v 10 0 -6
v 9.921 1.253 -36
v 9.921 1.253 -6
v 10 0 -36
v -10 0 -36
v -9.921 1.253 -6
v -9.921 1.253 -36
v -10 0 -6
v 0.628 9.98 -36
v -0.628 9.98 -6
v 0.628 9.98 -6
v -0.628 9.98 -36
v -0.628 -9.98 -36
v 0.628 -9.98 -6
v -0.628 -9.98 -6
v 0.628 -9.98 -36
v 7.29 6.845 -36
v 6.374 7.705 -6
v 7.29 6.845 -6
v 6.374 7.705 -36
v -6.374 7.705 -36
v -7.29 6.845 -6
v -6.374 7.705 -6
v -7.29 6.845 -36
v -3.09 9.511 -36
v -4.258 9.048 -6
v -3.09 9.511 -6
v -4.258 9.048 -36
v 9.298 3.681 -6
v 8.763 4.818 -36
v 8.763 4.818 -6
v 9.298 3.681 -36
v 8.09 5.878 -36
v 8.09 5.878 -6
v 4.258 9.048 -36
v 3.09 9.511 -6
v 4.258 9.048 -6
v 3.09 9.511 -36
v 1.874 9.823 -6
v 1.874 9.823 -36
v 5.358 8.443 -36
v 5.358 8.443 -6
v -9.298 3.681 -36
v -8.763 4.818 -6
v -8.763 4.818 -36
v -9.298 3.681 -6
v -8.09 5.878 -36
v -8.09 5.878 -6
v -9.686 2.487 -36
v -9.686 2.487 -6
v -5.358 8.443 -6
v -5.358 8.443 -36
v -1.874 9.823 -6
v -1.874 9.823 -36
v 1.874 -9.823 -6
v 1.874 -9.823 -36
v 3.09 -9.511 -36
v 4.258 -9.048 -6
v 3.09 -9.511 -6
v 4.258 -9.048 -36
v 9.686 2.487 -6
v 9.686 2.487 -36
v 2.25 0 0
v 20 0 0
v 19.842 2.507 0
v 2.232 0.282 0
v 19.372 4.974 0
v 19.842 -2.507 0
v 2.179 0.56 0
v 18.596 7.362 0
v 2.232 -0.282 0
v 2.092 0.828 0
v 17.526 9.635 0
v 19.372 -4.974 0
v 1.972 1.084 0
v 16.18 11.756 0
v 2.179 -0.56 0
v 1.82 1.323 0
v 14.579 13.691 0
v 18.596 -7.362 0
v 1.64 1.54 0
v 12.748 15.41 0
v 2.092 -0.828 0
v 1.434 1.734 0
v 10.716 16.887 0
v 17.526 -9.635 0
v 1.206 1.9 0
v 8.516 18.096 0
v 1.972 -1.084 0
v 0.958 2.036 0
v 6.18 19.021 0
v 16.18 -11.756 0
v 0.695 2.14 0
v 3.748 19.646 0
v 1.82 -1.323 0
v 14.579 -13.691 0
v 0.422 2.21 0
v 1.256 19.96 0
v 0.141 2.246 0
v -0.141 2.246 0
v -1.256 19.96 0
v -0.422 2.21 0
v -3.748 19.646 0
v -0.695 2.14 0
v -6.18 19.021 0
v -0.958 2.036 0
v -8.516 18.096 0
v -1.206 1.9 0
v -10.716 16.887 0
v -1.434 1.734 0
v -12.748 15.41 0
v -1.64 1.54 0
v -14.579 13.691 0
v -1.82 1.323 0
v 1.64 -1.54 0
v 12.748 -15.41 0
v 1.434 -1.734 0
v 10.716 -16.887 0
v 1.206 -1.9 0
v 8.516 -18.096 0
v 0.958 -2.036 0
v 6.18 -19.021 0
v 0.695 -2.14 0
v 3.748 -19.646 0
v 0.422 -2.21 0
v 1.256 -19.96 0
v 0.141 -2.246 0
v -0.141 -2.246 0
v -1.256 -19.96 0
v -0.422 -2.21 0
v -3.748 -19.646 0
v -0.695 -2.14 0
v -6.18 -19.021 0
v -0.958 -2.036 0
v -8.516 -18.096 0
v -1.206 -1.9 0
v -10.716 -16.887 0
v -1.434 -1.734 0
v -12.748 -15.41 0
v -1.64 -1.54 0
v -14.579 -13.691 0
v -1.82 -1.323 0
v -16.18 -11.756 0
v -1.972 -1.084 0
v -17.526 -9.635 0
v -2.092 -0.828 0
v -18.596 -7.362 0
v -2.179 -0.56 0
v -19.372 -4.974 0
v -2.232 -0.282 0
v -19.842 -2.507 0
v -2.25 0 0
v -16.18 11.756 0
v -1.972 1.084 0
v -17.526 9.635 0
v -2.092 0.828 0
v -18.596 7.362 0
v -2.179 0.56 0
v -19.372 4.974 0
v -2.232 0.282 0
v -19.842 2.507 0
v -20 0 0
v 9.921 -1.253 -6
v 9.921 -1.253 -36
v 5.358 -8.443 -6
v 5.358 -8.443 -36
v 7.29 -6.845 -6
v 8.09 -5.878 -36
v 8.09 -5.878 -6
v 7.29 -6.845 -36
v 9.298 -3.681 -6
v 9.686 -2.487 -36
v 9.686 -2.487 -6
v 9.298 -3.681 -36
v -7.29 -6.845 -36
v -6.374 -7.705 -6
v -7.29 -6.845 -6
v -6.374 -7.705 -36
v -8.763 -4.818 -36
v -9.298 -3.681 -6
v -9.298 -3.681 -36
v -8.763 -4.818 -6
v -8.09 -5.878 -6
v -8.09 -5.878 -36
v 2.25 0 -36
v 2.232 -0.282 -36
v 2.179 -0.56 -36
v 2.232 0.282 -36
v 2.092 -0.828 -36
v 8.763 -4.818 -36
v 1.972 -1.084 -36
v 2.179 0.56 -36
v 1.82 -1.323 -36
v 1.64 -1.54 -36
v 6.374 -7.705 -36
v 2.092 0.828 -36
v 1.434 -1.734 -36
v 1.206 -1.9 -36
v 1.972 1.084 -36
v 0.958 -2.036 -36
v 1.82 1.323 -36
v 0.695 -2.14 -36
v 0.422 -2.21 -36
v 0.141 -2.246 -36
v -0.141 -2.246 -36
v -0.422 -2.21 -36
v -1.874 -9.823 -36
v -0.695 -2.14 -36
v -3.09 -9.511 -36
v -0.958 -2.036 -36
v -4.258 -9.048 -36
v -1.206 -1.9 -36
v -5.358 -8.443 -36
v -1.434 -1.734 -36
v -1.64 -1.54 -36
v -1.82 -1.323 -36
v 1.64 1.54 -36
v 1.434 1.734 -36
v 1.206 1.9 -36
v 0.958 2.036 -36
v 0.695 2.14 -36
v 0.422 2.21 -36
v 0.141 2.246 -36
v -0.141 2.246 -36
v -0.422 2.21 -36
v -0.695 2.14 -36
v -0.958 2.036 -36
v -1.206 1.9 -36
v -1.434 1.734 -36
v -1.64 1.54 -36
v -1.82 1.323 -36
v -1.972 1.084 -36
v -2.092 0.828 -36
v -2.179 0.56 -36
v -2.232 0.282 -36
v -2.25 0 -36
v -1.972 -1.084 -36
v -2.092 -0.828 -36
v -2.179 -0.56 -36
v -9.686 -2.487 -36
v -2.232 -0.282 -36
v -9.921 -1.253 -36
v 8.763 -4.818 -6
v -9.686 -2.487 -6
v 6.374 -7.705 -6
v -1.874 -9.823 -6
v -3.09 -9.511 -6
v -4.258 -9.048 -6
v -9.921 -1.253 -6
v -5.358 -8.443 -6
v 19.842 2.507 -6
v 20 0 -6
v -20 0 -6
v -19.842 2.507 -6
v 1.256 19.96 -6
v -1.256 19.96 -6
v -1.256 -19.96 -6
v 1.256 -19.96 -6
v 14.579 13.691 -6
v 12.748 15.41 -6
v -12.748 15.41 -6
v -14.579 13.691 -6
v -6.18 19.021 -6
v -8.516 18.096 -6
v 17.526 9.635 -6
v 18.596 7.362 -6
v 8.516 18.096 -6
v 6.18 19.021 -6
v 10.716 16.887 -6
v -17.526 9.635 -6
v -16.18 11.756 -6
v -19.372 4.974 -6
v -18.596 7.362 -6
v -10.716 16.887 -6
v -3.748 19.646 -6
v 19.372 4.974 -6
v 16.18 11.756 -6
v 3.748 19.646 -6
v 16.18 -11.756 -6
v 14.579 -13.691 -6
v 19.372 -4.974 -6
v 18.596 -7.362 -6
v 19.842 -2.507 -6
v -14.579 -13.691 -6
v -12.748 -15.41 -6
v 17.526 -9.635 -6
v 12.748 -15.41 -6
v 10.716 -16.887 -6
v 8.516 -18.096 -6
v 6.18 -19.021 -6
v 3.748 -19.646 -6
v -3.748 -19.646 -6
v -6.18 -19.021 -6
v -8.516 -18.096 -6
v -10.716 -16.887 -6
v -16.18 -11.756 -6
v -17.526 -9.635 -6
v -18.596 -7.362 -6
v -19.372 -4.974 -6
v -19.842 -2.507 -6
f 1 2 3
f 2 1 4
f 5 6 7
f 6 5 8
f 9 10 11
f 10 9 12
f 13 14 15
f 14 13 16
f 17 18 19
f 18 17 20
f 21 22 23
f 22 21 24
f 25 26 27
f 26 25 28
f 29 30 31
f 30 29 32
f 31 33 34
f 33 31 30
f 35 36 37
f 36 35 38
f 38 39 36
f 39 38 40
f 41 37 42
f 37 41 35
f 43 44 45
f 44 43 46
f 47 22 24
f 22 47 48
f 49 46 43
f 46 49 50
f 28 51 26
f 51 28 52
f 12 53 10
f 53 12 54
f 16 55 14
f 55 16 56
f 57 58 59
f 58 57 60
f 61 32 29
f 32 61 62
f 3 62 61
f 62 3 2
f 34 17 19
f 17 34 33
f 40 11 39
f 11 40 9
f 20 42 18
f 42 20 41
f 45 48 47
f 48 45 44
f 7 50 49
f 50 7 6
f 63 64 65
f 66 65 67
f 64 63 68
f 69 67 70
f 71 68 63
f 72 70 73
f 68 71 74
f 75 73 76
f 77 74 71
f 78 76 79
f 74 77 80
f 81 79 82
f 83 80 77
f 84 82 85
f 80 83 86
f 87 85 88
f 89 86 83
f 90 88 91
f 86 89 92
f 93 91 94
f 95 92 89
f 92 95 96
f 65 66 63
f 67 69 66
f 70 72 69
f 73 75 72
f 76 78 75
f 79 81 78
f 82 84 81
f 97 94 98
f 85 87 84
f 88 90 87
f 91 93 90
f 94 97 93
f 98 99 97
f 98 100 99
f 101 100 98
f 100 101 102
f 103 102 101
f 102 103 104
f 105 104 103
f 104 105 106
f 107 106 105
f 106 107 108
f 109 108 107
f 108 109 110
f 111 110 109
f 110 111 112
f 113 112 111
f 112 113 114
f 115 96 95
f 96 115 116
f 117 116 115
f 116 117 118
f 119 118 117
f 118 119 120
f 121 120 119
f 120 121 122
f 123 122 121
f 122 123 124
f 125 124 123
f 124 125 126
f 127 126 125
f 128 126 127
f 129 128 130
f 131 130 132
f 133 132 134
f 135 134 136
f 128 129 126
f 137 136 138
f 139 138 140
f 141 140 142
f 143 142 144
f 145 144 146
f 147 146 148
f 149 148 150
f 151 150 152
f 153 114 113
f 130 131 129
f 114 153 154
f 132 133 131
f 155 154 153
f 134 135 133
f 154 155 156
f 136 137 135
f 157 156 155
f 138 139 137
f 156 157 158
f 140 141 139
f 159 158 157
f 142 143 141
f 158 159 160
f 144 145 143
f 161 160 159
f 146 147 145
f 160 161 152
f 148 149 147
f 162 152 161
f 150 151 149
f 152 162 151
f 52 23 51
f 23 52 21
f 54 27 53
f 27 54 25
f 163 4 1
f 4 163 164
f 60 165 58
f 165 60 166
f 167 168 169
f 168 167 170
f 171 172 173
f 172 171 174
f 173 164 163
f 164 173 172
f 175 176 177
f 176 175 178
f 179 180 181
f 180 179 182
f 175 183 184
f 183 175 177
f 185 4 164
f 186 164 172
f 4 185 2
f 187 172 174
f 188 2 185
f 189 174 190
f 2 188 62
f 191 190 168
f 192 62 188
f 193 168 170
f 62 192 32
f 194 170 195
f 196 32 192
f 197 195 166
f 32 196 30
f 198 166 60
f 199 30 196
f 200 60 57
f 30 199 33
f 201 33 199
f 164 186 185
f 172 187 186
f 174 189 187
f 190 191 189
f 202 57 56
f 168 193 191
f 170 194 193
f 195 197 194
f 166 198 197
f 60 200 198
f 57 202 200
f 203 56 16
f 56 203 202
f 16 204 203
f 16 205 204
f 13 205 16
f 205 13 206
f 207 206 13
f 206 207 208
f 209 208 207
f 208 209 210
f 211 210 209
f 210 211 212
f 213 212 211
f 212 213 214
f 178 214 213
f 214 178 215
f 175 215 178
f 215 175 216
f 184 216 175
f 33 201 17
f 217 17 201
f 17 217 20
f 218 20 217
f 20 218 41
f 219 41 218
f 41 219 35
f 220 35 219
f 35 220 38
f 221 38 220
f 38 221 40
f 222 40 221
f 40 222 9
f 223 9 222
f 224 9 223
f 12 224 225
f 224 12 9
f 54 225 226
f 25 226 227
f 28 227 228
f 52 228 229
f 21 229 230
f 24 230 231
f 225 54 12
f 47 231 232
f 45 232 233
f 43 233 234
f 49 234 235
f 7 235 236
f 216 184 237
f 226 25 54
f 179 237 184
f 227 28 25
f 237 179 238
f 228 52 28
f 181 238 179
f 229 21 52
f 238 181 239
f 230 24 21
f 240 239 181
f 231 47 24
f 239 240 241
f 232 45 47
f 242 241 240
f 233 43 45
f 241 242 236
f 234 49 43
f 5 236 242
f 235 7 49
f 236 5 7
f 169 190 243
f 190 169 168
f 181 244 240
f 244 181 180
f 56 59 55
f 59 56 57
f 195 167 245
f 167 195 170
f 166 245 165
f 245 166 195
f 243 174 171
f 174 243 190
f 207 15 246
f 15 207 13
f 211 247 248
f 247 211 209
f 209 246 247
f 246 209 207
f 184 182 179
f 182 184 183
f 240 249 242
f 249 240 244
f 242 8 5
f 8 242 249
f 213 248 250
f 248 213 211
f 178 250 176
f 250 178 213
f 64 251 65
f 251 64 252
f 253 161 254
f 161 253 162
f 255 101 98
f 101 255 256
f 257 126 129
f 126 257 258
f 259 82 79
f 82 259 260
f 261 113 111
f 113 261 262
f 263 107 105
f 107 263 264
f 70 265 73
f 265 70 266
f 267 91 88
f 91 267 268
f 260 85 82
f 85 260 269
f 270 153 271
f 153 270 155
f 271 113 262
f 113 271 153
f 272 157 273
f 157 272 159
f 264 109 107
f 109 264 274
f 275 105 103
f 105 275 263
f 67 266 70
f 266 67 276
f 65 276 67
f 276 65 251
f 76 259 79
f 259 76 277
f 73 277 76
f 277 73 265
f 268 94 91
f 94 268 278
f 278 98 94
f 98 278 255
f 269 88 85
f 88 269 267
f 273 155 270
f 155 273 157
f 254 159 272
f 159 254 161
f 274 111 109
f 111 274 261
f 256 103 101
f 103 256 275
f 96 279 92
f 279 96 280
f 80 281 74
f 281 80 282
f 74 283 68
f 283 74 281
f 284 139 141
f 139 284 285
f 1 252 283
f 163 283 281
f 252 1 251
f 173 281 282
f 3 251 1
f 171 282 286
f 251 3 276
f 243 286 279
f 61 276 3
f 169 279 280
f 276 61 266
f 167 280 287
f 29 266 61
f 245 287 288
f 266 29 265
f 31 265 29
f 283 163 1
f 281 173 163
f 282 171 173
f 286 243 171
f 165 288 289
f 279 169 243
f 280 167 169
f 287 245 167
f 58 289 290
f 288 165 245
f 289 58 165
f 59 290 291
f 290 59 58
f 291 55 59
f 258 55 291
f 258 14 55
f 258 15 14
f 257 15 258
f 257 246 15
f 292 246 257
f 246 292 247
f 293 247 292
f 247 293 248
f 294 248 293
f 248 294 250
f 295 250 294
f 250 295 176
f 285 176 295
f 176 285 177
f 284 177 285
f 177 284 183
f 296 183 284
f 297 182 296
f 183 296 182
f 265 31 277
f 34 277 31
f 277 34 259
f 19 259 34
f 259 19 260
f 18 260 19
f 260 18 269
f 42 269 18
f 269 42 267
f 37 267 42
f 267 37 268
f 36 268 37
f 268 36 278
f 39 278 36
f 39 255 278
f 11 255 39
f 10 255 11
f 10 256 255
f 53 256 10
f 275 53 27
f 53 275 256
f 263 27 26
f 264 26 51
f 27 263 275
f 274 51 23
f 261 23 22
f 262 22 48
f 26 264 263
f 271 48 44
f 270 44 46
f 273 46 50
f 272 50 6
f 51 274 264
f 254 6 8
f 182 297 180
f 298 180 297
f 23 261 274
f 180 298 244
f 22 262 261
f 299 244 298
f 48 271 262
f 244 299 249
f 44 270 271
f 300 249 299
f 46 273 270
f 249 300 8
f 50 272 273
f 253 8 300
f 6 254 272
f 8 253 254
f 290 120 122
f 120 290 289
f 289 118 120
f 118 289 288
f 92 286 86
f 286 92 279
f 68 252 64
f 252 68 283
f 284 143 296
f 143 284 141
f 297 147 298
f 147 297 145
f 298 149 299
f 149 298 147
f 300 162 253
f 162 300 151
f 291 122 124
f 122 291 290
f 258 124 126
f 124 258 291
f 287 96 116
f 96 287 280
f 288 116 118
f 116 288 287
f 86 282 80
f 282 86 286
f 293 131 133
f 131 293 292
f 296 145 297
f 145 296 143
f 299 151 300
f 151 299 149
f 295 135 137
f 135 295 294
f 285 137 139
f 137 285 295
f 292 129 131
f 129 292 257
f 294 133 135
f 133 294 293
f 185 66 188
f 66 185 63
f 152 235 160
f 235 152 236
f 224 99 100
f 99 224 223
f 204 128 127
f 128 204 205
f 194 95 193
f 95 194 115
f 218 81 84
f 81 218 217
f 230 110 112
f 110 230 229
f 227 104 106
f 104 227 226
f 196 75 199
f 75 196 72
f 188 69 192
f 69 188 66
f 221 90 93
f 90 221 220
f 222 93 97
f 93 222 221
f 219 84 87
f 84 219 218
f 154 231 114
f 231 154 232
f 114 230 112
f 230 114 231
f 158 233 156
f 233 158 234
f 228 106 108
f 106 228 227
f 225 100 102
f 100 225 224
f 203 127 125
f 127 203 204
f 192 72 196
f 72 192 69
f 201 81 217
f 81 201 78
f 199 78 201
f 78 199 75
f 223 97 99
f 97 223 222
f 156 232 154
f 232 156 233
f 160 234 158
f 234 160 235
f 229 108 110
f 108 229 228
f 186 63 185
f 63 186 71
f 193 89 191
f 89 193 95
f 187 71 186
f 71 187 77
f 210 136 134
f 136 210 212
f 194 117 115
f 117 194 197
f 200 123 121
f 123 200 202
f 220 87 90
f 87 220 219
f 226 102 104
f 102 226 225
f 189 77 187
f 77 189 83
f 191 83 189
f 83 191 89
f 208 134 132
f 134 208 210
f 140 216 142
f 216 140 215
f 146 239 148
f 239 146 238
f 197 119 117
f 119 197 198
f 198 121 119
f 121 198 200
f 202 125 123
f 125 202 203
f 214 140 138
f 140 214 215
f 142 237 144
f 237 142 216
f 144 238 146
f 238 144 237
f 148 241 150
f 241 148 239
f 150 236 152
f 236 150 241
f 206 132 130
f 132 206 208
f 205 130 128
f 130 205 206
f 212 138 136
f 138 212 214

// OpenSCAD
$fn = 50;


difference() {
	union() {
		translate(v = [0, 0, -36.0000000000]) {
			cylinder(h = 36, r = 10.0000000000);
		}
		translate(v = [0, 0, -6.0000000000]) {
			cylinder(h = 6, r = 20.0000000000);
		}
	}
	union() {
		#translate(v = [0, 0, -36]) {
			cylinder(h = 36, r = 2.2500000000);
		}
	}
}
